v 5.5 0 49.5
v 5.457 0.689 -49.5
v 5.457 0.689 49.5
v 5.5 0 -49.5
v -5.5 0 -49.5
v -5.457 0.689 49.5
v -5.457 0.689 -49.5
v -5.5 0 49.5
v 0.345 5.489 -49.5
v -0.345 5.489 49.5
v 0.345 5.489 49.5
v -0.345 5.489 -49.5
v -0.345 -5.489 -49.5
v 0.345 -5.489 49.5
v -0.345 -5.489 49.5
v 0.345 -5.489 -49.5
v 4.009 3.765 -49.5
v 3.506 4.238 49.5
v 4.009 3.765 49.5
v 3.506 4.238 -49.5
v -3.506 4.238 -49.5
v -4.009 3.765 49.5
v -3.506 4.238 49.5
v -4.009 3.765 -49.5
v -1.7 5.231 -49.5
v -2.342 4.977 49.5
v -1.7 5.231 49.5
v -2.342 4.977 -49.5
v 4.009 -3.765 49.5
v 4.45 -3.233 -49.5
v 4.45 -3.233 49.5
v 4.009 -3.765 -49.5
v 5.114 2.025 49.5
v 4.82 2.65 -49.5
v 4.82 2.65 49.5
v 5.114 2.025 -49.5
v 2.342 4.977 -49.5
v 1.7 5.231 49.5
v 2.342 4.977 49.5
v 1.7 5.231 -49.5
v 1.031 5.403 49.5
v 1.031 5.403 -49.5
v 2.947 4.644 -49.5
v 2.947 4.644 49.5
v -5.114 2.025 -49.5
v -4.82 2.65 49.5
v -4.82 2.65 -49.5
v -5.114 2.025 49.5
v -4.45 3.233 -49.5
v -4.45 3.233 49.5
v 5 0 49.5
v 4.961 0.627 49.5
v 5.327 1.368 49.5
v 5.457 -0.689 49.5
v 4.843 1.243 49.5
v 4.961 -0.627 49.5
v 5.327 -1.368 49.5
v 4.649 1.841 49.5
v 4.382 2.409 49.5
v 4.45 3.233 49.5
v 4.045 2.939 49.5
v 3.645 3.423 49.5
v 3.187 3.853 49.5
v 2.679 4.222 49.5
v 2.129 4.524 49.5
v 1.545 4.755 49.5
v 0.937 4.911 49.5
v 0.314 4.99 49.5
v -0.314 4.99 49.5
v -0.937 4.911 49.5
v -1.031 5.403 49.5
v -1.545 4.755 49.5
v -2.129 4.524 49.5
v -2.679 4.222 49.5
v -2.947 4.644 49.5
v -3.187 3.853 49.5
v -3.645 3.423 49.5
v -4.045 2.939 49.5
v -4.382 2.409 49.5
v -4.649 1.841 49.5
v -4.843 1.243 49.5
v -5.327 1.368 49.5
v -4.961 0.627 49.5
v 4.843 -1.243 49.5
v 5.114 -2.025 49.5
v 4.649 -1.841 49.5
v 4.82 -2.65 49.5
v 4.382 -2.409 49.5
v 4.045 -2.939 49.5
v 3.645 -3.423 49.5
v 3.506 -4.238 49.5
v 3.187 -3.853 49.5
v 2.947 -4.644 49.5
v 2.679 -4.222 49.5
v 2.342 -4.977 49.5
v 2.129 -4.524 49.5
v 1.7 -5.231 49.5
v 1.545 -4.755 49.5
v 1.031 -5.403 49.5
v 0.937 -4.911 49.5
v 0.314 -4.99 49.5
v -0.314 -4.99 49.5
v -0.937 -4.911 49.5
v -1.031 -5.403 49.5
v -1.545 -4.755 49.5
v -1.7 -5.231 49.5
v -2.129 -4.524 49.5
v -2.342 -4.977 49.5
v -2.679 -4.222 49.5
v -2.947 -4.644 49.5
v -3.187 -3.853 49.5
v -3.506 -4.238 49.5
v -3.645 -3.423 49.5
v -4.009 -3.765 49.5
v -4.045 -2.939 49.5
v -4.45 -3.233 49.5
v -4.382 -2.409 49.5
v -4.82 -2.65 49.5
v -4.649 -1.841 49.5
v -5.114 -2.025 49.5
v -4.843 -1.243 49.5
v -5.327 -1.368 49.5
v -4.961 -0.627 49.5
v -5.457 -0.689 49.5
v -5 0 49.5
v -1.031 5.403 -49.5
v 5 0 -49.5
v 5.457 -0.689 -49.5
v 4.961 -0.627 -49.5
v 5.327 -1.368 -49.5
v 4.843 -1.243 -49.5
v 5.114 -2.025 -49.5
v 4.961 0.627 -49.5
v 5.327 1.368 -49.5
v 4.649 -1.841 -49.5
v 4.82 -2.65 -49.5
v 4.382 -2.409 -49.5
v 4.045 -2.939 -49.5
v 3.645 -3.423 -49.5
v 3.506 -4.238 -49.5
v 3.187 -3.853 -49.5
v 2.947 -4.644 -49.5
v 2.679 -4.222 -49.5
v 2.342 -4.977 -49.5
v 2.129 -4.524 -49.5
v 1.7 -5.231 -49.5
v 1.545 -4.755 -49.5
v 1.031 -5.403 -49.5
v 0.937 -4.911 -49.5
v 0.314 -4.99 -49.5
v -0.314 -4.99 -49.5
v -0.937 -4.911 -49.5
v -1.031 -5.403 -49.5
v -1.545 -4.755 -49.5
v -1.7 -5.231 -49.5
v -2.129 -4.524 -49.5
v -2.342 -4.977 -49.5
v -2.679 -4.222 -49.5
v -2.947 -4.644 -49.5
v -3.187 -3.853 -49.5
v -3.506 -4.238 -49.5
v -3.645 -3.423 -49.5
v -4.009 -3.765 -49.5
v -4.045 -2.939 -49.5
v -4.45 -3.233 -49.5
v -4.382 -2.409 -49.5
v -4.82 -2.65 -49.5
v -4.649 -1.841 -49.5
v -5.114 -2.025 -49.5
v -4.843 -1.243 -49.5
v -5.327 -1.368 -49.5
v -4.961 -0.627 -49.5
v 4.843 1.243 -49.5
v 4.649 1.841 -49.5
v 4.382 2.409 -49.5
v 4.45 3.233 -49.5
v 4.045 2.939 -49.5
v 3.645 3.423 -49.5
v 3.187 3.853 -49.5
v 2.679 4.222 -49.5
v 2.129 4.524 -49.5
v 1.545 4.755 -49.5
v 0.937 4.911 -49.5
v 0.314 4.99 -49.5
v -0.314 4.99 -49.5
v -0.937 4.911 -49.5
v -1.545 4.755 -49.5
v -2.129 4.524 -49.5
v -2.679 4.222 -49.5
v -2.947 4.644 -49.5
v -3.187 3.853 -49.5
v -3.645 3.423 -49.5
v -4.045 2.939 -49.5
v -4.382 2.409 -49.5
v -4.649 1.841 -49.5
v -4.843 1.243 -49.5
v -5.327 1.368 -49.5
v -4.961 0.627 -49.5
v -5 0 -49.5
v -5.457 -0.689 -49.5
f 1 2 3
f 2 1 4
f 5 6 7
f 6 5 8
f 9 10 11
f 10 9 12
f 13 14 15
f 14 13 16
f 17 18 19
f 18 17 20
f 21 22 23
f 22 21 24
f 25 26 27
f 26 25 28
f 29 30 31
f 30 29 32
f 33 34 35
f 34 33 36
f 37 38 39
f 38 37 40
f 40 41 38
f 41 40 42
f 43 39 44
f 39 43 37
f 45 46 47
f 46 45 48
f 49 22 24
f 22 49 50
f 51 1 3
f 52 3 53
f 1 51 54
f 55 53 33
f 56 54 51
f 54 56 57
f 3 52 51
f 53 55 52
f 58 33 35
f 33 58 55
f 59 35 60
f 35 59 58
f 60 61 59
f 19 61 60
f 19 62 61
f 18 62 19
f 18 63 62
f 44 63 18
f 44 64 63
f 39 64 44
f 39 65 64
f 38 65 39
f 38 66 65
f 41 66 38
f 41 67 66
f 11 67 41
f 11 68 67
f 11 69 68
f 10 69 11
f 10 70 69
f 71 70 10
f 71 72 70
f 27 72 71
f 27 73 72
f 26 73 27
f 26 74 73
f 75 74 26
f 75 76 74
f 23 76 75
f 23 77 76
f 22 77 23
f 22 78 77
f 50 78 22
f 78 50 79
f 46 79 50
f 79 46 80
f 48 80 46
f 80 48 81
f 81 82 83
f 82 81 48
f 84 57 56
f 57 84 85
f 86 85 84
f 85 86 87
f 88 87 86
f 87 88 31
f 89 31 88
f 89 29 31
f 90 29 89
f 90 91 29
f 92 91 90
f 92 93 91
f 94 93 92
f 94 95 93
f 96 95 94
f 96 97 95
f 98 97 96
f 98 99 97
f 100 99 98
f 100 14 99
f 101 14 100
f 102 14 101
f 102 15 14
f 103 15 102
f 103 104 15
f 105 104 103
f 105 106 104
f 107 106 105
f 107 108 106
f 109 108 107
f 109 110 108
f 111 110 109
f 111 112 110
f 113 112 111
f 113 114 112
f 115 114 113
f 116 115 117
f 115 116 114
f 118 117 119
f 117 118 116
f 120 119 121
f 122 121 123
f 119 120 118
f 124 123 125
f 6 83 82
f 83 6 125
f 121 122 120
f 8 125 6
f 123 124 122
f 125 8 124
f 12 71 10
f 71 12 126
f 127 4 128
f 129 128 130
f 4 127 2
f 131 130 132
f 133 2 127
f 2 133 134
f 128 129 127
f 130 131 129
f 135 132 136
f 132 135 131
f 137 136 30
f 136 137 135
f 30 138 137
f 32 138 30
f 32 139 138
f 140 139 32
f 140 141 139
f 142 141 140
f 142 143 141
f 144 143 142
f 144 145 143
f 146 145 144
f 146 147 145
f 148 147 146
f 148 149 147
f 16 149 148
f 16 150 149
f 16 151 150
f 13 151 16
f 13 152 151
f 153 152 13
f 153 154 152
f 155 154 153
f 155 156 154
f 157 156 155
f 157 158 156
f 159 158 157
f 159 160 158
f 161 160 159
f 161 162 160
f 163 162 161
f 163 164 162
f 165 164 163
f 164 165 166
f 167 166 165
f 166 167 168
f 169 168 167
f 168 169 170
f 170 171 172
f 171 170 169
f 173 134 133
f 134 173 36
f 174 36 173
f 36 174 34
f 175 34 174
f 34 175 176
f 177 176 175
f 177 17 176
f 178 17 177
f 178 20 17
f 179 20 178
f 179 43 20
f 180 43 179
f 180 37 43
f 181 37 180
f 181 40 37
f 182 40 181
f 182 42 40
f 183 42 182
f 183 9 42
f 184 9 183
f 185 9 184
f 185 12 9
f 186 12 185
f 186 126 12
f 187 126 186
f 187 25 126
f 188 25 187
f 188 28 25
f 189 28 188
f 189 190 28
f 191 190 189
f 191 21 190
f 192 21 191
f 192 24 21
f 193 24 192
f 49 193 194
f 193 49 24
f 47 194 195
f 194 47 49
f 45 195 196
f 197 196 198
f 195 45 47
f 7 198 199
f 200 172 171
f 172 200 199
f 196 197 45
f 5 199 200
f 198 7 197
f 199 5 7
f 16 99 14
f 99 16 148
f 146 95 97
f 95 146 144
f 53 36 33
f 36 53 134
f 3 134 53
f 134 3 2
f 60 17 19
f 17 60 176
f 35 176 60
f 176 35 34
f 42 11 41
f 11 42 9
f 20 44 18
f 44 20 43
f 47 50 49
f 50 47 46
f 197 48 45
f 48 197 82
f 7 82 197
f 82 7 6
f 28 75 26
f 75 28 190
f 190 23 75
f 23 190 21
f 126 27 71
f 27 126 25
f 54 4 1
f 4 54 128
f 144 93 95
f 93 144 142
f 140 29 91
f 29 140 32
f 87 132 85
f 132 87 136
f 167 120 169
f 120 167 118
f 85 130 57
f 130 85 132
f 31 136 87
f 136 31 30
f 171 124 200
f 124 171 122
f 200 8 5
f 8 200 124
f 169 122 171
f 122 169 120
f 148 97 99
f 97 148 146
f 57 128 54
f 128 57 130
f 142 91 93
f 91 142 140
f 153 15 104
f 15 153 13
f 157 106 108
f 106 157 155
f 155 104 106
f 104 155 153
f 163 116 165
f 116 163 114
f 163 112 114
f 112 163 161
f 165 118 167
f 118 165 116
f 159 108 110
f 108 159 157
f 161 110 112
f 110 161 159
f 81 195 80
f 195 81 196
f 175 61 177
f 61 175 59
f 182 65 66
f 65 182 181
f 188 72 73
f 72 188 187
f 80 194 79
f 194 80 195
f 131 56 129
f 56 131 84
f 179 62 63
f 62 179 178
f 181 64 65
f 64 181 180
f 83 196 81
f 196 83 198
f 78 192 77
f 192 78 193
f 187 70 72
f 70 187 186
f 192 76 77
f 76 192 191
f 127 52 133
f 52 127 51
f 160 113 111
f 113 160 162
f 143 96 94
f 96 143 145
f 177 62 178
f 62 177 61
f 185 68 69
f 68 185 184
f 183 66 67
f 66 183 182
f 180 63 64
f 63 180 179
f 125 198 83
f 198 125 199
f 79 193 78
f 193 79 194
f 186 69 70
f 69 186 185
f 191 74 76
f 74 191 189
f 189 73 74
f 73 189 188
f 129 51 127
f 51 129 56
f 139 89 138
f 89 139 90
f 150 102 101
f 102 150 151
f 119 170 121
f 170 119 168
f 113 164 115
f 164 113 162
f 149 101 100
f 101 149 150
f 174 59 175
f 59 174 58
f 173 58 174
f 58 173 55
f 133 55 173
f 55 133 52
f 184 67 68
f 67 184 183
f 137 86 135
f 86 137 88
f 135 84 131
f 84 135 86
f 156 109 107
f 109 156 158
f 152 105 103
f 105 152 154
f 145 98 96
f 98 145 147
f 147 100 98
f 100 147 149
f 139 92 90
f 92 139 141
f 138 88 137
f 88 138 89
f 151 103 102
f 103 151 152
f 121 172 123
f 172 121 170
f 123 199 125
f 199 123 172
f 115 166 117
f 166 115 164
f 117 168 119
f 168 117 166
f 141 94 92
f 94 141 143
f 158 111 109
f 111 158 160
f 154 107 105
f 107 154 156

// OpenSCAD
$fn = 50;


difference() {
	union() {
		translate(v = [0, 0, -49.5000000000]) {
			cylinder(h = 99, r = 5.5000000000);
		}
	}
	union() {
		translate(v = [0, 0, -100.0000000000]) {
			cylinder(h = 200, r = 5.0000000000);
		}
	}
}
